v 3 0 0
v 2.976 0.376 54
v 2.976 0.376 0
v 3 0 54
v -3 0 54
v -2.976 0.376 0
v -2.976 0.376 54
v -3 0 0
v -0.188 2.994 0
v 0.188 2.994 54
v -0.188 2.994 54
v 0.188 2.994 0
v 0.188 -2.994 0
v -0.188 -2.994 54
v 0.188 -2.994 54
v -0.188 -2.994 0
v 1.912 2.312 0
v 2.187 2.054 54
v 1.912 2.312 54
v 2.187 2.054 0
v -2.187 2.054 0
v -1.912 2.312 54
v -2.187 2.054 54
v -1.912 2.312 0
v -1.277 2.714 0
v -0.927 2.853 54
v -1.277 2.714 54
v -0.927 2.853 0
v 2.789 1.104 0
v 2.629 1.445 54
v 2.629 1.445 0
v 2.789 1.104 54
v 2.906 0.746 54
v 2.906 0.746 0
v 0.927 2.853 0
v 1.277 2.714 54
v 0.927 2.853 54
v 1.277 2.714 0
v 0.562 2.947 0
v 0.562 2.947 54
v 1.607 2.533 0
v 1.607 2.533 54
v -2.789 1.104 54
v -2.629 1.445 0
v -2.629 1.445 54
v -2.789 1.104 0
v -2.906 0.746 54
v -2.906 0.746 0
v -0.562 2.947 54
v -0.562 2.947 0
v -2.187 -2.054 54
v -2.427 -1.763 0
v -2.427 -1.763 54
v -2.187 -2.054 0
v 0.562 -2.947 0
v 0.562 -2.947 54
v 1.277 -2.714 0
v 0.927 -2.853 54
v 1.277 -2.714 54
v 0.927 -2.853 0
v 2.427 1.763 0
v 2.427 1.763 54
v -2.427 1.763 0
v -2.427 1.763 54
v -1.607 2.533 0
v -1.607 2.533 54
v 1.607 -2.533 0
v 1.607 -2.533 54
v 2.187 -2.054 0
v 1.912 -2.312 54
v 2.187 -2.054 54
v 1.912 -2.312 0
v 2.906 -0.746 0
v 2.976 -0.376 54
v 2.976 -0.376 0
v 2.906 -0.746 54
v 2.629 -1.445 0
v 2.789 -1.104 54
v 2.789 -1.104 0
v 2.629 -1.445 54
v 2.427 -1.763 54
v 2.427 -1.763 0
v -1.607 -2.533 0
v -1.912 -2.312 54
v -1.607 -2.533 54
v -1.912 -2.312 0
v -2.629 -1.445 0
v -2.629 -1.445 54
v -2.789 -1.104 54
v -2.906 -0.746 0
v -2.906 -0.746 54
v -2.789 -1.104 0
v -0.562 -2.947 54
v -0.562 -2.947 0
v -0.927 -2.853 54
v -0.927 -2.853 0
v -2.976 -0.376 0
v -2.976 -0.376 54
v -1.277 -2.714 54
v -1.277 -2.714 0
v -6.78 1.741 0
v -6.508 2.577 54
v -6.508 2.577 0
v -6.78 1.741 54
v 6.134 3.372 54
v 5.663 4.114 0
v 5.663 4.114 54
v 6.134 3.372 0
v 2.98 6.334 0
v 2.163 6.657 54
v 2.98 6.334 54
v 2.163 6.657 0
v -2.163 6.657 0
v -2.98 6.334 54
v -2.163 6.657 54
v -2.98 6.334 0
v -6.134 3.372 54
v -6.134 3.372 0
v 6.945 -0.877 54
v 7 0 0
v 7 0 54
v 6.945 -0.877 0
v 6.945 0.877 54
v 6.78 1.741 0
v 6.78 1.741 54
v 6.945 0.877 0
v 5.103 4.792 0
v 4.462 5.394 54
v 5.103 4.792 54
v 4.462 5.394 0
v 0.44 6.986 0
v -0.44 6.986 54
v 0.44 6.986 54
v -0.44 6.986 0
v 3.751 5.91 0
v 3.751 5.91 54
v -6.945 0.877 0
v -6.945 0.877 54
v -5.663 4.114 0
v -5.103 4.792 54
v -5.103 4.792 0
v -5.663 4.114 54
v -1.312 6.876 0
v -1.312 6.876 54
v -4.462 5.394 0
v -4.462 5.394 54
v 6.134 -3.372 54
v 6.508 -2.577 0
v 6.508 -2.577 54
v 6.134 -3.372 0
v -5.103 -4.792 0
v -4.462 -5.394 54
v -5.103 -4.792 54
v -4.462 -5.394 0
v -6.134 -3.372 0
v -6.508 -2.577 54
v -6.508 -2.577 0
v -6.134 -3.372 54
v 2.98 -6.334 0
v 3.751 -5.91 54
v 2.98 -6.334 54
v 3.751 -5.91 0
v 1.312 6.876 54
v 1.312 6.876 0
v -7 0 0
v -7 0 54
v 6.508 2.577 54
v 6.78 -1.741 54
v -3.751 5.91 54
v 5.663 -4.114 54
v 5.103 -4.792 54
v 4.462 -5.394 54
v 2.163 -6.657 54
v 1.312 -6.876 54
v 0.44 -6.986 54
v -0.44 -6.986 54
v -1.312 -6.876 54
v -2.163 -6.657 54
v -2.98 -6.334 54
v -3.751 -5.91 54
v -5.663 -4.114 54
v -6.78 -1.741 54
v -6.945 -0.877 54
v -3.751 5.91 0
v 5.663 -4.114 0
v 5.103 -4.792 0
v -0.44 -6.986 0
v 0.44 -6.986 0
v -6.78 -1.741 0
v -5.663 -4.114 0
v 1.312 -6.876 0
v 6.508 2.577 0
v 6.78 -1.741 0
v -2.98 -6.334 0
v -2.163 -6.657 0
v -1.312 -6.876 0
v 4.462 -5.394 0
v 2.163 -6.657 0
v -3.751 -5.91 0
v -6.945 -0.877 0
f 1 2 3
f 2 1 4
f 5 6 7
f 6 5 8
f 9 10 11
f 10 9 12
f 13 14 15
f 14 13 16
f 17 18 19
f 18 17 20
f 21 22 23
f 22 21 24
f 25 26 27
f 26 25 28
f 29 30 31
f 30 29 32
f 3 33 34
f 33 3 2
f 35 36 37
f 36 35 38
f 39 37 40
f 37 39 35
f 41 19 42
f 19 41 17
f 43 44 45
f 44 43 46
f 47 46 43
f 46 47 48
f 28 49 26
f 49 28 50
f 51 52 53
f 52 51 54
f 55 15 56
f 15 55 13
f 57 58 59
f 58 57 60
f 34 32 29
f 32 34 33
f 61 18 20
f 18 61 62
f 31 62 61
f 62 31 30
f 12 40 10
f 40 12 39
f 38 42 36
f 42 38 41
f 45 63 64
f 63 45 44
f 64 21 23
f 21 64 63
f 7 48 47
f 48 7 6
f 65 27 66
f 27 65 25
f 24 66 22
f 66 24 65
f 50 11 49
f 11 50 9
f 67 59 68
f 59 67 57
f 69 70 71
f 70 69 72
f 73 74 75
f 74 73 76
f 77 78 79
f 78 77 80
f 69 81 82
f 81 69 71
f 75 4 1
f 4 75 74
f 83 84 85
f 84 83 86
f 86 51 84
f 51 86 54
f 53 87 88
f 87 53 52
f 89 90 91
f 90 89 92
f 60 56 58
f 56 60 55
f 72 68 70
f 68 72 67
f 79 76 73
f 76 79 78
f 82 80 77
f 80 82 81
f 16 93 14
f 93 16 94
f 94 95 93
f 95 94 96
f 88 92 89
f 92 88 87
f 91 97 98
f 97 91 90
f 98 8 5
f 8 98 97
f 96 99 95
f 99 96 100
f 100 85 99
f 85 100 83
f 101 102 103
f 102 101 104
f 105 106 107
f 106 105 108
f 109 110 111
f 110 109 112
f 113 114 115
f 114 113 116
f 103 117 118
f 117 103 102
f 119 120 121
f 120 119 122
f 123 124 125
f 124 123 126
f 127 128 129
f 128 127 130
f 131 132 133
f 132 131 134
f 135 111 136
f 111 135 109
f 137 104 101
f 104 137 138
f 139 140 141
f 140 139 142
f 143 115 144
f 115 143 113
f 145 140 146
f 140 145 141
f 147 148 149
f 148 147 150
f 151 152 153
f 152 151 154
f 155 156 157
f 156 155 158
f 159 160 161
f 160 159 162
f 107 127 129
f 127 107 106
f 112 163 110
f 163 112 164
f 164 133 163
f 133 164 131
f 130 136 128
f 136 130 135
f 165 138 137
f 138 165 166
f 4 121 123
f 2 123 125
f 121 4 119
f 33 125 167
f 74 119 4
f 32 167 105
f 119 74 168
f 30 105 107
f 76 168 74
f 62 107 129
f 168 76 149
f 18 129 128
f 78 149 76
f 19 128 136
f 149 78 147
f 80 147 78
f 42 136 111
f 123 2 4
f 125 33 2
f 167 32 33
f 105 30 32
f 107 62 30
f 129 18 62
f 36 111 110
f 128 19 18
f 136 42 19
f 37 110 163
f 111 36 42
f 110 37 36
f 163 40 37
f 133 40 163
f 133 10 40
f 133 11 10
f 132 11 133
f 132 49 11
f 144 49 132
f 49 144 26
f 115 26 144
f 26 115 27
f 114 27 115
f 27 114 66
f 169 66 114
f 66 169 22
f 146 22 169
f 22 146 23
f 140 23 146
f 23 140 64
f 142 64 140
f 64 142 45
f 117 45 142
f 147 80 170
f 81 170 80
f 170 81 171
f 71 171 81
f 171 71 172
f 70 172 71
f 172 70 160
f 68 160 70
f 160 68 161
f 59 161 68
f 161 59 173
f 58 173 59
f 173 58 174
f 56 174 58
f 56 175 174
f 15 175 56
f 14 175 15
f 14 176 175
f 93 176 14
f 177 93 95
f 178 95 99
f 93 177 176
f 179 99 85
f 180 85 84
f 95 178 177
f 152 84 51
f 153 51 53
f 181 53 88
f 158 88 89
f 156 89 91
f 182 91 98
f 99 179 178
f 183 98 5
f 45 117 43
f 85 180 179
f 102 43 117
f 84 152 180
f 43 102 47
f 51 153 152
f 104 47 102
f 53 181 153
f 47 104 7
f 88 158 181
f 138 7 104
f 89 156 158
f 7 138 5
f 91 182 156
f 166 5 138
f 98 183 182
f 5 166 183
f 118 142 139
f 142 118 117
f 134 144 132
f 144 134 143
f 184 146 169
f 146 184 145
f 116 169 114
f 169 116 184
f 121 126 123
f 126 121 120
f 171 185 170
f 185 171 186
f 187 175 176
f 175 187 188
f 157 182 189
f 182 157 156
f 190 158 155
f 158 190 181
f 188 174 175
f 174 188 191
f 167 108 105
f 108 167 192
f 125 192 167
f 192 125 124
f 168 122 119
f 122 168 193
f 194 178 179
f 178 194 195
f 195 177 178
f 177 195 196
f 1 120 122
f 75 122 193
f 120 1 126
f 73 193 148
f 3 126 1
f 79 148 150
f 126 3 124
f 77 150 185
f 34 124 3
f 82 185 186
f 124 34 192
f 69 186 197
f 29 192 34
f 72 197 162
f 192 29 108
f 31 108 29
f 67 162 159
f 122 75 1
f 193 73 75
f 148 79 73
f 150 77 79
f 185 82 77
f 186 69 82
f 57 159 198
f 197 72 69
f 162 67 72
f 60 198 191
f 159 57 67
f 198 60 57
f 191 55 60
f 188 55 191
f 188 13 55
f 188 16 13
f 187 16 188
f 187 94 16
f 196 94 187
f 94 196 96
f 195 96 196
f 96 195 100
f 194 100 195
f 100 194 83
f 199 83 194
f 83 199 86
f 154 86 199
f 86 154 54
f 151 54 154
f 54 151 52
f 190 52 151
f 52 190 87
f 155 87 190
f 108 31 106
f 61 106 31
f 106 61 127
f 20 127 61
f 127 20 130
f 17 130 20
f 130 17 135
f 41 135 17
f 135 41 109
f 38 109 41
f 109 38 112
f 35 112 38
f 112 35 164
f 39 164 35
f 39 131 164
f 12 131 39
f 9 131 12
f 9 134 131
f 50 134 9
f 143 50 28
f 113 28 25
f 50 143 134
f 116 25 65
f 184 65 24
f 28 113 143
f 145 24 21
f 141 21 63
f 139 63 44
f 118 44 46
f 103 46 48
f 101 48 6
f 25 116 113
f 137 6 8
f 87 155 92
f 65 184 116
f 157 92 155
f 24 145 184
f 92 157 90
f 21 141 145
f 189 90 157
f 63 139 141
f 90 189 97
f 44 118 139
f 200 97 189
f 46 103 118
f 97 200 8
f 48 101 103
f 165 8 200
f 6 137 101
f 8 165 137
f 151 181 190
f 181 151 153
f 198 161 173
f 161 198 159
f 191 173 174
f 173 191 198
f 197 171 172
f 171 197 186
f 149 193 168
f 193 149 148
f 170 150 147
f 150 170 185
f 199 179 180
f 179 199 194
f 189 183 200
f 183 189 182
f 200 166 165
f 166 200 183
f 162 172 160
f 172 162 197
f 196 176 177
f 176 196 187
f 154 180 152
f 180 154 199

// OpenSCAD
$fn = 50;


difference() {
	union() {
		cylinder(h = 54, r = 7.0000000000);
	}
	union() {
		translate(v = [0.0000000000, 0.0000000000, -100.0000000000]) {
			cylinder(h = 200, r = 3.0000000000);
		}
		cylinder(h = 54, r = 1.5000000000);
		cylinder(h = 54, r = 1.5000000000);
		cylinder(h = 54, r = 1.5000000000);
	}
}
